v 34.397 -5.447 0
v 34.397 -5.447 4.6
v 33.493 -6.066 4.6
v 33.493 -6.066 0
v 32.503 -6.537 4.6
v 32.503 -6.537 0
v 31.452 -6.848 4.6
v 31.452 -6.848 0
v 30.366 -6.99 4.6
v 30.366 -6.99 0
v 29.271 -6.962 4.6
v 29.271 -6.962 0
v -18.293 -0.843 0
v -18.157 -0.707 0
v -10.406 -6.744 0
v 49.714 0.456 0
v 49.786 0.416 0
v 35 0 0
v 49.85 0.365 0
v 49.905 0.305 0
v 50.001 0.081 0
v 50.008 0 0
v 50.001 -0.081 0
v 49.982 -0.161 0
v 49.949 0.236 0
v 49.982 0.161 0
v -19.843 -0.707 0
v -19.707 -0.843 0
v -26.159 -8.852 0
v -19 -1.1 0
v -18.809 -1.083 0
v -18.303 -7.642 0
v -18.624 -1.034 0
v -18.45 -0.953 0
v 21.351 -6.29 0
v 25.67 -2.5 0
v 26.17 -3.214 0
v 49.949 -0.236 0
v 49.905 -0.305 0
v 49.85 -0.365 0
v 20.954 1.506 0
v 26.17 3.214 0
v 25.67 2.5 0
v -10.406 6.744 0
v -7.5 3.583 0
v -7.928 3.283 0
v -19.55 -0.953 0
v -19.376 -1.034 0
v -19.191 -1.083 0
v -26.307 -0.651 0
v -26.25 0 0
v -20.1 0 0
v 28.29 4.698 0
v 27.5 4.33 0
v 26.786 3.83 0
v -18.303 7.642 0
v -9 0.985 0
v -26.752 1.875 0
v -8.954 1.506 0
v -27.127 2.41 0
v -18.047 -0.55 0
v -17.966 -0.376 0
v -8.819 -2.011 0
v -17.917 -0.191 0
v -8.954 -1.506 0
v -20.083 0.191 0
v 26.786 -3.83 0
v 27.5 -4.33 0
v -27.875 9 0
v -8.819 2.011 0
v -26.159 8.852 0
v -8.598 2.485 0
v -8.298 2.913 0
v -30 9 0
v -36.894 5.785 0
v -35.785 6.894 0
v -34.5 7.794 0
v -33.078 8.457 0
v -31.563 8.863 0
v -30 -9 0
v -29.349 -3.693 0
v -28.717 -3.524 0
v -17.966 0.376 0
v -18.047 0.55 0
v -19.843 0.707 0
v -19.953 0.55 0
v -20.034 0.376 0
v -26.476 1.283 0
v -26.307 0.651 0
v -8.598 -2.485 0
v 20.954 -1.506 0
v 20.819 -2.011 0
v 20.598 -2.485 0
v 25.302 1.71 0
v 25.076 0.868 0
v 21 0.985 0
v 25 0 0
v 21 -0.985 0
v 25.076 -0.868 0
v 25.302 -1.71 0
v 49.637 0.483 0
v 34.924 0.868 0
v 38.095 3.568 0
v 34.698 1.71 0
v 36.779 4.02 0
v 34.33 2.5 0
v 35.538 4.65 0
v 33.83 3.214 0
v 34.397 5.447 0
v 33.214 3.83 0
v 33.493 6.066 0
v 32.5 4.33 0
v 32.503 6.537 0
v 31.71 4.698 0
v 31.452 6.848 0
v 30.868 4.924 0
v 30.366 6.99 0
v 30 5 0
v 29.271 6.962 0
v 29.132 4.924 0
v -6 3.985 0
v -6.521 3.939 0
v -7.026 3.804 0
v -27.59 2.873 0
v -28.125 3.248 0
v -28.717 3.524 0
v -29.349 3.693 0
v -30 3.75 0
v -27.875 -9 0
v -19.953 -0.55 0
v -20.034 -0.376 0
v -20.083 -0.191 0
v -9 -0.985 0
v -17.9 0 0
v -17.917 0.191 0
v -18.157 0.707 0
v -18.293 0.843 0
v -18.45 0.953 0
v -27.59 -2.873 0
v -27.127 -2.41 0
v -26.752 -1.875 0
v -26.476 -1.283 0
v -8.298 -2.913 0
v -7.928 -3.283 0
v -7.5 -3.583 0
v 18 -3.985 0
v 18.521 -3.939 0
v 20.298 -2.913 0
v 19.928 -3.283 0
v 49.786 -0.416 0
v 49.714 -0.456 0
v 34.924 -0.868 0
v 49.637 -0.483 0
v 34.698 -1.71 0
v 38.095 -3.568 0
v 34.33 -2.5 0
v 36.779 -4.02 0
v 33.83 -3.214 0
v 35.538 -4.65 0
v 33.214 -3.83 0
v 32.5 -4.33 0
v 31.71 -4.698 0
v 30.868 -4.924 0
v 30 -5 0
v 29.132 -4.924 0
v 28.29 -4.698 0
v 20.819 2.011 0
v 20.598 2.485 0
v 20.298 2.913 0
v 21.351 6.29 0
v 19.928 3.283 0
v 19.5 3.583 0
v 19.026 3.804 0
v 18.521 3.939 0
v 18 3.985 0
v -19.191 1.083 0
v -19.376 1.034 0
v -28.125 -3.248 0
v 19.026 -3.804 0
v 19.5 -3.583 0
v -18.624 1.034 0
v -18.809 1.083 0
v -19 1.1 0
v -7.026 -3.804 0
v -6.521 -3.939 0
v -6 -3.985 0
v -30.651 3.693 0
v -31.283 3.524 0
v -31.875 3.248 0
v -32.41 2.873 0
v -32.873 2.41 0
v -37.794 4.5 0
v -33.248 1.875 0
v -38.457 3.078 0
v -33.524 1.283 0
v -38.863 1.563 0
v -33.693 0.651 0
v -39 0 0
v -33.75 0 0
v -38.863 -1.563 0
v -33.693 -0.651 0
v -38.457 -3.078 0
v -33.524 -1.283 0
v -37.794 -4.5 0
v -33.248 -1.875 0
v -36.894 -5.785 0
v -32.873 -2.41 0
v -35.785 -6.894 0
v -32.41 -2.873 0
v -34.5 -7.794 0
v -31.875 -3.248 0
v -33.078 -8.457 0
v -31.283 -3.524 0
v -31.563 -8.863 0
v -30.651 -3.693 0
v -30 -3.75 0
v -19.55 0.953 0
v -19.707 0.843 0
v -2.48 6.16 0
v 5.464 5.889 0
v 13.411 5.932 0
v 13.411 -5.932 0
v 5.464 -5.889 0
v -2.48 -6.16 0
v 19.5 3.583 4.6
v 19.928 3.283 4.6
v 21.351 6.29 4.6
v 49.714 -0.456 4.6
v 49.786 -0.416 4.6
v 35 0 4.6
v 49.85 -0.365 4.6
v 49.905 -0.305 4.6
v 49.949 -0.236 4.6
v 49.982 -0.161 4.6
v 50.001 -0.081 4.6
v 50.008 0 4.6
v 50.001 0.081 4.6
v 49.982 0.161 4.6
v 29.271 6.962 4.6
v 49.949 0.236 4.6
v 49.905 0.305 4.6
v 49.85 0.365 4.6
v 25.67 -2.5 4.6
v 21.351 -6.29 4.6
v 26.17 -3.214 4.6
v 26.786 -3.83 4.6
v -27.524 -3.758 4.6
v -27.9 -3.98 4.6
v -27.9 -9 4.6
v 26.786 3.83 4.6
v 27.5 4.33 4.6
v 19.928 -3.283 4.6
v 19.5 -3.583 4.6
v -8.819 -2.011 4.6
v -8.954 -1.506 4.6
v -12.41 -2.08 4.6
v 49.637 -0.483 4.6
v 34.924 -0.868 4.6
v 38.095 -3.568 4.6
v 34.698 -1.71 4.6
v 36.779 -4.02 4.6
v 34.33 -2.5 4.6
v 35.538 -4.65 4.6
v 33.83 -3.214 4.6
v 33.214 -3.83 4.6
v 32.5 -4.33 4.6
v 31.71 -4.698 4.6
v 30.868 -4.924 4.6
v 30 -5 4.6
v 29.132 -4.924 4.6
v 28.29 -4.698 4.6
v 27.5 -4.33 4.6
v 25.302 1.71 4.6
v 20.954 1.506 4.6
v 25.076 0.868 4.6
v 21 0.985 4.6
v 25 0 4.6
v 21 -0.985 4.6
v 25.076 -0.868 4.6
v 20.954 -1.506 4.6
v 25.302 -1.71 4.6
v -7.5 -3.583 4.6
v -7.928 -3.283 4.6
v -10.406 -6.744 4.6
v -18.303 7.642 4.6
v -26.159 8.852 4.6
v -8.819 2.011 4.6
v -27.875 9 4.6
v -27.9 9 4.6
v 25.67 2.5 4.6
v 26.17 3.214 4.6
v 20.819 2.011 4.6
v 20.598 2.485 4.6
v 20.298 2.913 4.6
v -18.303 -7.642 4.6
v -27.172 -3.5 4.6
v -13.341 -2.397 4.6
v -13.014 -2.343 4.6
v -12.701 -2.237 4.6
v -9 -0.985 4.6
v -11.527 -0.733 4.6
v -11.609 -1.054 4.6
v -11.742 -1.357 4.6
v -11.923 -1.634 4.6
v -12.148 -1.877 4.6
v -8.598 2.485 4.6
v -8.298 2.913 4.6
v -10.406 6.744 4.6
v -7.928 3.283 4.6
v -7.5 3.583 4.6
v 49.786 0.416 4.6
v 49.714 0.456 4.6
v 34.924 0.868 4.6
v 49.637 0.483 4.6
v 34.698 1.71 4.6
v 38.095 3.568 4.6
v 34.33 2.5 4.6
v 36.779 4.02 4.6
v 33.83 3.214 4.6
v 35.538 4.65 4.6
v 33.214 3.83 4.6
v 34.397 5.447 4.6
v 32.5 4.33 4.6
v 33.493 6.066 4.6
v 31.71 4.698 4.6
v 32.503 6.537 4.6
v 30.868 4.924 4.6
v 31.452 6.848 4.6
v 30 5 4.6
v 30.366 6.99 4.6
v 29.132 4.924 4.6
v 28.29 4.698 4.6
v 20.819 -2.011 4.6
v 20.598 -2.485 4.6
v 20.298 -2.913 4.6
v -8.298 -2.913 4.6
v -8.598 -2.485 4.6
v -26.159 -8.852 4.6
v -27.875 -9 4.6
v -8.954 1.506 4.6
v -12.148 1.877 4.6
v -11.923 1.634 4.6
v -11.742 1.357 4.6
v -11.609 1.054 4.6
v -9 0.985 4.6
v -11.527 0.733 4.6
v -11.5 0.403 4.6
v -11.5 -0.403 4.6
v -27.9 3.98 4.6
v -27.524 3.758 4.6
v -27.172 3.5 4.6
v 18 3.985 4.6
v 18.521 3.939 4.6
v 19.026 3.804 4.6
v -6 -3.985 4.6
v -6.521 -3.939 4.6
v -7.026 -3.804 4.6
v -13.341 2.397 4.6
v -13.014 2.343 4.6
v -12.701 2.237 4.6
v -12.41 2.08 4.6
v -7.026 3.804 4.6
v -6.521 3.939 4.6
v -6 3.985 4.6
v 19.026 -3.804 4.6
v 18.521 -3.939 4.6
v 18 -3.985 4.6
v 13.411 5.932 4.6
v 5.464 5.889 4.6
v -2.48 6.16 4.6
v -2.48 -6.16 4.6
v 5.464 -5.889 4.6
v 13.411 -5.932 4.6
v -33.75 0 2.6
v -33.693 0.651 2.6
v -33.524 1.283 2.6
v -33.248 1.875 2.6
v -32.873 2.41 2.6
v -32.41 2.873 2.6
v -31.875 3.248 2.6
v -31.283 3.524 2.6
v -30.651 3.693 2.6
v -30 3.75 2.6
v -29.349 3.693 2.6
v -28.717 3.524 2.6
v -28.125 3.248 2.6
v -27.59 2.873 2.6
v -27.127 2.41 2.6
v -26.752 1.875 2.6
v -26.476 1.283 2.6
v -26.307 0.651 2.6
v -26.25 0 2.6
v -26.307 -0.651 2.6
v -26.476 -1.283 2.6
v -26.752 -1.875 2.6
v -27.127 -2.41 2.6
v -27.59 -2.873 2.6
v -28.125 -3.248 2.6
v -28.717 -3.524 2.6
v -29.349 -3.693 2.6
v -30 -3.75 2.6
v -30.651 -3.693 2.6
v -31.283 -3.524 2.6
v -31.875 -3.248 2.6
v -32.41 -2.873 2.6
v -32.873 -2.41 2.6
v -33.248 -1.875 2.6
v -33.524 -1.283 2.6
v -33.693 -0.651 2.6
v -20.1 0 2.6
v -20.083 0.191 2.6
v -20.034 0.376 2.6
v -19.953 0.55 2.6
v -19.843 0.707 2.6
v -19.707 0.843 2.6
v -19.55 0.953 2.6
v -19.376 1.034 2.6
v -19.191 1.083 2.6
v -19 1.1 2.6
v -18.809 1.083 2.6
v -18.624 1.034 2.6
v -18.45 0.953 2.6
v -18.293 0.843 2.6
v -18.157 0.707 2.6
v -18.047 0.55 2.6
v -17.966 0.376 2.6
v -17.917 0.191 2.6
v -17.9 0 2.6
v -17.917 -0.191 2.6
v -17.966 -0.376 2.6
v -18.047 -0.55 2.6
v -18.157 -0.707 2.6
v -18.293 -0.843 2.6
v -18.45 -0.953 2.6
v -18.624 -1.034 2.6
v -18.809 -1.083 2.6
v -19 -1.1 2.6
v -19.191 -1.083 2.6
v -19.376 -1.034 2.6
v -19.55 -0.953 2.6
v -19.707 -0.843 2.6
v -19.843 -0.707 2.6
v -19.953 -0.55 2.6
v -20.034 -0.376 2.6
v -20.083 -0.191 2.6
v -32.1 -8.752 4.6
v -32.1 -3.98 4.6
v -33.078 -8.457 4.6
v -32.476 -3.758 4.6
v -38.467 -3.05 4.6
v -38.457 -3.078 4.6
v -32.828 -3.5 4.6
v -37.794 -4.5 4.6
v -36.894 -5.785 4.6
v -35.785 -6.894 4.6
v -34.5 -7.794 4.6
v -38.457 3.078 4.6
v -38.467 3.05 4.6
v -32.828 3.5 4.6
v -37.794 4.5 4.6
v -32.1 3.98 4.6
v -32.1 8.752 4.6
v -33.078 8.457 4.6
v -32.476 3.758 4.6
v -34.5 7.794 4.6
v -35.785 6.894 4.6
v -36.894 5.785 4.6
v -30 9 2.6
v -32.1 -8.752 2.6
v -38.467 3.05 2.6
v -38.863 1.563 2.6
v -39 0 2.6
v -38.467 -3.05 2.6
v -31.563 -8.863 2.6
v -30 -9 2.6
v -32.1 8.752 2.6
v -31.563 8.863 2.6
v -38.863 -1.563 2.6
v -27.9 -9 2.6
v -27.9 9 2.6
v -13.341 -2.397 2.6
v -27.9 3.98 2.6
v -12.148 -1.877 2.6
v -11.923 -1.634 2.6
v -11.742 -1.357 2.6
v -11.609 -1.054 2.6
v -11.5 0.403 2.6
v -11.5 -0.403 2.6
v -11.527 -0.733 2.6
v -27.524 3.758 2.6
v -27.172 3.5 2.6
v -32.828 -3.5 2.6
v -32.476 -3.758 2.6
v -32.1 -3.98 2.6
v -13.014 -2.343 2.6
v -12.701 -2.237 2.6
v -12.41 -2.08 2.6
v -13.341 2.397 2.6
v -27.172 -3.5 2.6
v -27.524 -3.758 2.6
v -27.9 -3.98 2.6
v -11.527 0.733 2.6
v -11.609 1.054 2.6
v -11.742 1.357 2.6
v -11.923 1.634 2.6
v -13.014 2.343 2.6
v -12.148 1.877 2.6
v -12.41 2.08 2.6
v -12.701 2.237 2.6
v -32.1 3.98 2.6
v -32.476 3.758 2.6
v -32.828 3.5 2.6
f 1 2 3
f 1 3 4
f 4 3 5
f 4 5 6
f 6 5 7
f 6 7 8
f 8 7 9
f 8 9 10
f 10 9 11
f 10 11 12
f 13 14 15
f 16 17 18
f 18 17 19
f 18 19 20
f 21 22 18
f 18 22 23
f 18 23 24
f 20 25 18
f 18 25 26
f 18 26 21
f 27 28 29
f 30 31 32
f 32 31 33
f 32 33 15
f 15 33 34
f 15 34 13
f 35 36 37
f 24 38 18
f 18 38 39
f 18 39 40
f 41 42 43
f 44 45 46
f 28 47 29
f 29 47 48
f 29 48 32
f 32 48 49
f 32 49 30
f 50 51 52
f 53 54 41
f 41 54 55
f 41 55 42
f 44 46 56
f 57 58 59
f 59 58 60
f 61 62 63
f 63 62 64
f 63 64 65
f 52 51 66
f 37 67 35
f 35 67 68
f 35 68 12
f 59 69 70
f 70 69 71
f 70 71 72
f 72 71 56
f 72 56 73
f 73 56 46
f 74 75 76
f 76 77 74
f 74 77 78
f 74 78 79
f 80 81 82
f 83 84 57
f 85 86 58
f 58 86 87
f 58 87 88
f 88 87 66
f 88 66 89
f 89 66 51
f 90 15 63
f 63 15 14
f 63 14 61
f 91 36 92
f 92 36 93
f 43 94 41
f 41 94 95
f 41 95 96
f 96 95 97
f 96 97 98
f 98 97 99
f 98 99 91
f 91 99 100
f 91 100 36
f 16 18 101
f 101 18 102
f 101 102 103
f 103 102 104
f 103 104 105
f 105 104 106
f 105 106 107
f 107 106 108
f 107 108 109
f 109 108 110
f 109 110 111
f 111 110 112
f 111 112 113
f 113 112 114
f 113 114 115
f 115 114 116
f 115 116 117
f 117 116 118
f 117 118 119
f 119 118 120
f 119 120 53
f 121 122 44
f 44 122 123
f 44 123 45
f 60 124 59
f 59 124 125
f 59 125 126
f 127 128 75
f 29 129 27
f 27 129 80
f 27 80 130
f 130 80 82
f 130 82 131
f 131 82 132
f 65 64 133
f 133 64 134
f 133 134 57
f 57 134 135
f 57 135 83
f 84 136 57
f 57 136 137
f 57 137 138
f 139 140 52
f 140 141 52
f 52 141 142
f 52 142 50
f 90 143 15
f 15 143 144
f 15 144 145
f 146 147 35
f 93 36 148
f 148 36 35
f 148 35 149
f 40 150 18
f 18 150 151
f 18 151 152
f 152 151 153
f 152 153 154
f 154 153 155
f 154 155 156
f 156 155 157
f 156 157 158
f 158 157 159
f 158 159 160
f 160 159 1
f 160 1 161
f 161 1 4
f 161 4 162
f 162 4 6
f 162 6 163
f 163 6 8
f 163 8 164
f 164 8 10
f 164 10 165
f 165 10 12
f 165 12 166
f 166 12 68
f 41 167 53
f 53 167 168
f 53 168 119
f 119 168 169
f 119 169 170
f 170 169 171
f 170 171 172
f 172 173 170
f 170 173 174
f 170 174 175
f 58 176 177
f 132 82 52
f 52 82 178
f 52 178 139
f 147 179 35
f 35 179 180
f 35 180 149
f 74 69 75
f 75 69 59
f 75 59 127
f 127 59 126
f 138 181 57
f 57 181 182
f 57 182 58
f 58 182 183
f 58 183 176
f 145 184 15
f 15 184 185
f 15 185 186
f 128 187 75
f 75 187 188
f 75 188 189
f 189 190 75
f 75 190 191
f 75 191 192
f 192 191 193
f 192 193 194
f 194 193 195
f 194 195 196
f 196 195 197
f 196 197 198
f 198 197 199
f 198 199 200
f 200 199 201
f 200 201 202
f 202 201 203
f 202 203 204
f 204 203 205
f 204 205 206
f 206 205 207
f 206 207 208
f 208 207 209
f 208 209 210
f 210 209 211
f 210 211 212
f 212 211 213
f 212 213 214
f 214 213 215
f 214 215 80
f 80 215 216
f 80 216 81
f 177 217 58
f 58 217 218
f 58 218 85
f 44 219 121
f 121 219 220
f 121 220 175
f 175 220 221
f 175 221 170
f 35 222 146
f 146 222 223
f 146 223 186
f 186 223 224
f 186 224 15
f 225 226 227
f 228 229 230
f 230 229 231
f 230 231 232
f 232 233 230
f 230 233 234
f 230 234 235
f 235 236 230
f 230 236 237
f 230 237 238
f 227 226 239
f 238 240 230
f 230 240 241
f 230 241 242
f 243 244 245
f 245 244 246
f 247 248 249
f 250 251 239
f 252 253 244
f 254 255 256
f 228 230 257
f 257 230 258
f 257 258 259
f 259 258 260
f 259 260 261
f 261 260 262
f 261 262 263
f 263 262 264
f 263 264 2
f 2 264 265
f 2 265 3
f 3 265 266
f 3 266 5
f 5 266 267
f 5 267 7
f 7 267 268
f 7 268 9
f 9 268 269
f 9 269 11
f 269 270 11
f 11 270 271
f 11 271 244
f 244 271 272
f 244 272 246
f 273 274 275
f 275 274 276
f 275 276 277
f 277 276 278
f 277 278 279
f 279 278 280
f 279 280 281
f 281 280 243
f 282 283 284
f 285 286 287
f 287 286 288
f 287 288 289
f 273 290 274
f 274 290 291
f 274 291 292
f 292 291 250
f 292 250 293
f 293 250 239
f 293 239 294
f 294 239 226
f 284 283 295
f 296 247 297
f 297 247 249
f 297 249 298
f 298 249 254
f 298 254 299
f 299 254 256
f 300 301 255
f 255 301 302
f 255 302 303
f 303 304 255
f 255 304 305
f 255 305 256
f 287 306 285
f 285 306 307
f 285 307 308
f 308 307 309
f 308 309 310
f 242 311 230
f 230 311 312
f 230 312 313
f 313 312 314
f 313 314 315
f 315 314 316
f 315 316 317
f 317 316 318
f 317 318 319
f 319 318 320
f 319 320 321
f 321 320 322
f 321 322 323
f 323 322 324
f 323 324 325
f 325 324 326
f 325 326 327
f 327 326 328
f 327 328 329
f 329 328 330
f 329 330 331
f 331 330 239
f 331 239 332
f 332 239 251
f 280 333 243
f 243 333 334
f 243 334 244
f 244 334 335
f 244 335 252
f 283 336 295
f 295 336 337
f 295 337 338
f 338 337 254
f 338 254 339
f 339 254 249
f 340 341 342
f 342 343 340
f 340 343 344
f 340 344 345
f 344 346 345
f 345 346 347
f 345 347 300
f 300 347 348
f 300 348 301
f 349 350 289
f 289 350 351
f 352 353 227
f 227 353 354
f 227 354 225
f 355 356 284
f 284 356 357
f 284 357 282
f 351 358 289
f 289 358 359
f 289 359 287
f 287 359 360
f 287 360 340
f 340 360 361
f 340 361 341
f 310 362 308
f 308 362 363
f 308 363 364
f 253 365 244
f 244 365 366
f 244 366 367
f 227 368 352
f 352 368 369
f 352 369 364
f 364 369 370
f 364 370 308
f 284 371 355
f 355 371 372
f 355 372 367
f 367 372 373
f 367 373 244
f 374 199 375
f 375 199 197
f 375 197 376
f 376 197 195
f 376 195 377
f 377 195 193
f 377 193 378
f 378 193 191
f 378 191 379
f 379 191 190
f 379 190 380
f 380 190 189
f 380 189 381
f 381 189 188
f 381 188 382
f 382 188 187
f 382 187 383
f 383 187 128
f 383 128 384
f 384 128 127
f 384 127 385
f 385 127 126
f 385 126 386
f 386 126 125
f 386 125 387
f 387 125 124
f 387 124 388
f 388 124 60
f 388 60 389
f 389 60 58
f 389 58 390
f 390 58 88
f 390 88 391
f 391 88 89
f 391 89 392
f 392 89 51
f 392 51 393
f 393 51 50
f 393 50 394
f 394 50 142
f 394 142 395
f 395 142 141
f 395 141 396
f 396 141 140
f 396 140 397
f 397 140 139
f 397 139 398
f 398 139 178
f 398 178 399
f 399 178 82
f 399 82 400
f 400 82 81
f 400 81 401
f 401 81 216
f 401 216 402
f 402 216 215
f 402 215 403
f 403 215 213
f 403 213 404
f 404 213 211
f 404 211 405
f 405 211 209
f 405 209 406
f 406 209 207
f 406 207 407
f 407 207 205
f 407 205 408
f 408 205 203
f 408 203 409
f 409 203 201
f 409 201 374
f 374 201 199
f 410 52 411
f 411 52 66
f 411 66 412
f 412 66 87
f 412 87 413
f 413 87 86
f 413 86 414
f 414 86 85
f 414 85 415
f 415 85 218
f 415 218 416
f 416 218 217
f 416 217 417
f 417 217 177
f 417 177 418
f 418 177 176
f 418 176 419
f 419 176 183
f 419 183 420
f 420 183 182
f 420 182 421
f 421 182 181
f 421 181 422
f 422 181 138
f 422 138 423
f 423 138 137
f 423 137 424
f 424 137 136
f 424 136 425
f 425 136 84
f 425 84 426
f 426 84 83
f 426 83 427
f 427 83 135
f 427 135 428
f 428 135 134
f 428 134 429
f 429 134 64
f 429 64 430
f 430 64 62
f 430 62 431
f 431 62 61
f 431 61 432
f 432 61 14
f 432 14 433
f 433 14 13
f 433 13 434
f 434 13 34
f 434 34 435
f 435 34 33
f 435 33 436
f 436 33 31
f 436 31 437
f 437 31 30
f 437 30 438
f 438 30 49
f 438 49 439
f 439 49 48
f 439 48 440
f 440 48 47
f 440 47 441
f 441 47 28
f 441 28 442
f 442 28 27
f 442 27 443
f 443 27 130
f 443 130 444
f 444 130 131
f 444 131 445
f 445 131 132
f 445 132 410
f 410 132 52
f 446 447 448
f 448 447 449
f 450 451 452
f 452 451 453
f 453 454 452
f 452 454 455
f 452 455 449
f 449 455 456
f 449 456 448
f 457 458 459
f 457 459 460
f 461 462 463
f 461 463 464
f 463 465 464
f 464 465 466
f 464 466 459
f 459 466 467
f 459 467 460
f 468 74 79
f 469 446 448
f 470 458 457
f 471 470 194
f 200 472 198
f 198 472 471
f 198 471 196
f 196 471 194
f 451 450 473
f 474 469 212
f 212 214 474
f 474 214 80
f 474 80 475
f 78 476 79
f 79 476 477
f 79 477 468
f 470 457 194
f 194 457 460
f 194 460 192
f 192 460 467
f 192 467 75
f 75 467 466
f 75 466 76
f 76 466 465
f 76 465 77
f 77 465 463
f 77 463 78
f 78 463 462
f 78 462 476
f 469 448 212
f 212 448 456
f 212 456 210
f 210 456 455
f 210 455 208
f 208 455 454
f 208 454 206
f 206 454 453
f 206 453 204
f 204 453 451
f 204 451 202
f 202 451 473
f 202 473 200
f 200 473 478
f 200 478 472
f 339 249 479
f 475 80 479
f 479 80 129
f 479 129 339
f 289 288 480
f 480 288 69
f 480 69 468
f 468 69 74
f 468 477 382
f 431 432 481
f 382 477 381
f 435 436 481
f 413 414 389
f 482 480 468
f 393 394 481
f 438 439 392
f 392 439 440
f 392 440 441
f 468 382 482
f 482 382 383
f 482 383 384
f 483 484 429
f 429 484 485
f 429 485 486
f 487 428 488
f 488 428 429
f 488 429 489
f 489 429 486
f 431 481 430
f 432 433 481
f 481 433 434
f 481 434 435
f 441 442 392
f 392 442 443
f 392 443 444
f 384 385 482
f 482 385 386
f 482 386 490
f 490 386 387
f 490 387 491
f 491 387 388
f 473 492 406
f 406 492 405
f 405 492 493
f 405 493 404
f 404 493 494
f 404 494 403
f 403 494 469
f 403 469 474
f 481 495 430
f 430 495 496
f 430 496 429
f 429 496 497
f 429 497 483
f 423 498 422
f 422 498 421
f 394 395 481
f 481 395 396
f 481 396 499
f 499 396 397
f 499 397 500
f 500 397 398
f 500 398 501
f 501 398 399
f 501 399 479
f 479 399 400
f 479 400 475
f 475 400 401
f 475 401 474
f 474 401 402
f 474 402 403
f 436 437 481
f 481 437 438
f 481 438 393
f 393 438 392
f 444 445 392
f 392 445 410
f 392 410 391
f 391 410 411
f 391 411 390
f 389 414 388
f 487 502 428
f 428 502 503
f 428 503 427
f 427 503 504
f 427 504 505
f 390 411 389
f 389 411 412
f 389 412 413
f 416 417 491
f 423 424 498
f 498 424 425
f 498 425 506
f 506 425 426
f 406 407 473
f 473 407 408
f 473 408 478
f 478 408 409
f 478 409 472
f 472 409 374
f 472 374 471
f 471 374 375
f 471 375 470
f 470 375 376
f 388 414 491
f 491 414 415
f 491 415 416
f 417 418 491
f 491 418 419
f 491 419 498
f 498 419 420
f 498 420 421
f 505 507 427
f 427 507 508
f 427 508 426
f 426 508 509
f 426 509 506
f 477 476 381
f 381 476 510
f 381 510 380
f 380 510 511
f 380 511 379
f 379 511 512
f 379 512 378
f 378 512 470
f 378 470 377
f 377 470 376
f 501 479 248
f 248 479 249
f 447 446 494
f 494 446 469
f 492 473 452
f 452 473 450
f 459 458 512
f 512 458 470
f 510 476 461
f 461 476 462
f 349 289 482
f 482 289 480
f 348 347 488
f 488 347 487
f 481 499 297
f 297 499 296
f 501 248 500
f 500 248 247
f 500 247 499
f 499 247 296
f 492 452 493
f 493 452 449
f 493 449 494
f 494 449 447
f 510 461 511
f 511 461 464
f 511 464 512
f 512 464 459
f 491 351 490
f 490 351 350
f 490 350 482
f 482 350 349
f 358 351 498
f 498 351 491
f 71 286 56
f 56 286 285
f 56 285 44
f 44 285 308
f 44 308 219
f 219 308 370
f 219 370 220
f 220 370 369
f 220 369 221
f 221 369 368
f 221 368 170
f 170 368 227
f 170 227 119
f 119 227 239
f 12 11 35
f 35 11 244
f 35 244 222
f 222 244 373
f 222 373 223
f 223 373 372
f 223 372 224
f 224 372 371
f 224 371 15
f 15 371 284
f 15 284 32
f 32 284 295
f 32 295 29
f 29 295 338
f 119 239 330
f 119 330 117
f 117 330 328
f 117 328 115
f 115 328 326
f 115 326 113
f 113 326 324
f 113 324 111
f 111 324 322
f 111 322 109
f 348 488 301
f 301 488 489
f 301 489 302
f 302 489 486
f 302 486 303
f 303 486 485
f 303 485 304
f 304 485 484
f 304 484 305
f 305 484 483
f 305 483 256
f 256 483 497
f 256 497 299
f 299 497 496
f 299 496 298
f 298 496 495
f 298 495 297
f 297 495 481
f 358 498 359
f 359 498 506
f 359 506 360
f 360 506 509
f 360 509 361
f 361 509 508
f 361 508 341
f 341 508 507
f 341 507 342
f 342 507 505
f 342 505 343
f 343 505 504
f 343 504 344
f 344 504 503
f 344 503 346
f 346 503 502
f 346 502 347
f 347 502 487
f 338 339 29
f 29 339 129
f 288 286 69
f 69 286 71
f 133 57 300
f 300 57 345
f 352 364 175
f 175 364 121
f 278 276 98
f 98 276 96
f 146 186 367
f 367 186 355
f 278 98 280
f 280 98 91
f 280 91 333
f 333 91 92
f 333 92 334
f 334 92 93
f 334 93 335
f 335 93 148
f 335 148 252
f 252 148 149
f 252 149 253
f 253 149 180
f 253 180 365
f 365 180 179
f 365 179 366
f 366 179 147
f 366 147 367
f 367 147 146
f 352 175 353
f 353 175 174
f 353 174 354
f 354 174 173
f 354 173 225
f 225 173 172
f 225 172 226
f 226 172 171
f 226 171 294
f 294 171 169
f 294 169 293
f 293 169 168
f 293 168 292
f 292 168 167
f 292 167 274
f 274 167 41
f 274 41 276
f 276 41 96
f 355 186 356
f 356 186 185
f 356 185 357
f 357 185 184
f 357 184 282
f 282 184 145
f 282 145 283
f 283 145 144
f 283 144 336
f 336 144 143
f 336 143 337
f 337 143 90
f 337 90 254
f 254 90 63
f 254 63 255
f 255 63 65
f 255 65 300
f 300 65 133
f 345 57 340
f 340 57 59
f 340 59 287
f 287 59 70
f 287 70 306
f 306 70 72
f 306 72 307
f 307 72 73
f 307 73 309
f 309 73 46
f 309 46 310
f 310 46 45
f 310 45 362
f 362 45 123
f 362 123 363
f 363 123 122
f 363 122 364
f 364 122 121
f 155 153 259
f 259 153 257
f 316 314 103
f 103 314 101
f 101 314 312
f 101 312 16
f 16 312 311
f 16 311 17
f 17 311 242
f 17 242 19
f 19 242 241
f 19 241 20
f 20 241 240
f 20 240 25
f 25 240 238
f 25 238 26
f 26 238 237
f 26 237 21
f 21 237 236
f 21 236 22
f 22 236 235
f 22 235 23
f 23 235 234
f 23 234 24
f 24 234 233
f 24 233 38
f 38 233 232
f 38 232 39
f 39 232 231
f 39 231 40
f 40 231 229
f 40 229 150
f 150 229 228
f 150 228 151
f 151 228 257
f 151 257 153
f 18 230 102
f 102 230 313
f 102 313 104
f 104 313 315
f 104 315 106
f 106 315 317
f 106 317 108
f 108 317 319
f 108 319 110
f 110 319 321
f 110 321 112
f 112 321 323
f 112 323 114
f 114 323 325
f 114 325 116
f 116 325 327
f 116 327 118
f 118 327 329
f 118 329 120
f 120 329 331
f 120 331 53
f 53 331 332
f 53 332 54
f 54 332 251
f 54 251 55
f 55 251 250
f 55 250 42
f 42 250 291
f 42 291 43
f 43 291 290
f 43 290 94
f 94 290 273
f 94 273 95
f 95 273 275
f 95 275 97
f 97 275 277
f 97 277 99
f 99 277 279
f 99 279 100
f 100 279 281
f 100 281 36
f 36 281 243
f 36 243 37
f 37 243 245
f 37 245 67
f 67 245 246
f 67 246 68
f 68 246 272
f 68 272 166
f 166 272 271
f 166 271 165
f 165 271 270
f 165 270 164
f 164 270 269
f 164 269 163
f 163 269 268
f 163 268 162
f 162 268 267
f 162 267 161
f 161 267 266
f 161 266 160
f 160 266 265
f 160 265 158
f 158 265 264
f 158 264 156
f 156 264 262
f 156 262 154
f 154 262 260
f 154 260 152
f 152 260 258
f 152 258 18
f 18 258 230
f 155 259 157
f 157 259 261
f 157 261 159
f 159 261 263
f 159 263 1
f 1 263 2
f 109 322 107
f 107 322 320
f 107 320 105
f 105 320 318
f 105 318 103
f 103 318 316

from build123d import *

# Parameters (mm, degrees)
ESQUISSE1_R             = 3.75
ESQUISSE1_R_2           = 1.6
ESQUISSE1_R_3           = 1.1
BOSS_EXTRU_1_DEPTH      = 2.6
ESQUISSE2_R             = 3.75
ESQUISSE2_R_2           = 1.6
ESQUISSE2_R_3           = 1.1
BOSS_EXTRU_2_DEPTH      = 2
ENL_V_MAT_EXTRU_1_DEPTH = 2
ENL_V_MAT_EXTRU_2_DEPTH = 41.288459886
CONG_1_R                = 2
CONG_2_R                = 10
ESQUISSE6_W             = 30
ESQUISSE6_H             = 7.96998198
ENL_V_MAT_EXTRU_4_DEPTH = 10
CONG_3_R                = 3
BOSS_EXTRU_3_DEPTH      = 4.6
CONG_4_R                = 0.5
ESQUISSE9_R             = 5
ENL_V_MAT_EXTRU_7_DEPTH = 52.019355151
CONG_5_R                = 10


with BuildPart() as part:
    # Esquisse1 → Boss.-Extru.1 (new body)
    with BuildSketch(Plane.XY):
        with BuildLine():
            Line((-30, 9), (30, 9))
            ThreePointArc((30, 9), (39, 0), (30, -9))
            Line((30, -9), (-30, -9))
            ThreePointArc((-30, -9), (-39, 0), (-30, 9))
        make_face()
        with Locations((-30, 0)):
            Circle(ESQUISSE1_R, mode=Mode.SUBTRACT)
        with Locations((30, 0)):
            Circle(ESQUISSE1_R_2, mode=Mode.SUBTRACT)
        with Locations((-19, 0)):
            Circle(ESQUISSE1_R_3, mode=Mode.SUBTRACT)
    extrude(amount=BOSS_EXTRU_1_DEPTH)

    # Esquisse2 → Boss.-Extru.2 (add)
    with BuildSketch(Plane.XY.offset(2.6)):
        with BuildLine():
            Line((-30, -9), (30, -9))
            ThreePointArc((30, -9), (39, 0), (30, 9))
            Line((30, 9), (-30, 9))
            ThreePointArc((-30, 9), (-39, 0), (-30, -9))
        make_face()
        with Locations((-30, 0)):
            Circle(ESQUISSE2_R, mode=Mode.SUBTRACT)
        with Locations((30, 0)):
            Circle(ESQUISSE2_R_2, mode=Mode.SUBTRACT)
        with Locations((-19, 0)):
            Circle(ESQUISSE2_R_3, mode=Mode.SUBTRACT)
    extrude(amount=BOSS_EXTRU_2_DEPTH)

    # Esquisse3 → Enlèv. mat.-Extru.1 (cut)
    with BuildSketch(Plane.XY.offset(4.6)):
        with BuildLine():
            Line((-32.1, 3.979949748), (-32.1, 11))
            Line((-32.1, 11), (-27.9, 11))
            Line((-27.9, 11), (-27.9, 3.979949748))
            ThreePointArc((-27.9, 3.979949748), (-27.524129159, 3.757667305), (-27.171572875, 3.5))
            Line((-27.171572875, 3.5), (-11.5, 2.25))
            Line((-11.5, 2.25), (-11.5, -2.25))
            Line((-11.5, -2.25), (-27.171572875, -3.5))
            ThreePointArc((-27.171572875, -3.5), (-27.524129159, -3.757667305), (-27.9, -3.979949748))
            Line((-27.9, -3.979949748), (-27.9, -11))
            Line((-27.9, -11), (-32.1, -11))
            Line((-32.1, -11), (-32.1, -3.979949748))
            ThreePointArc((-32.1, -3.979949748), (-32.475870841, -3.757667305), (-32.828427125, -3.5))
            Line((-32.828427125, -3.5), (-48.5, -2.25))
            Line((-48.5, -2.25), (-48.5, 2.25))
            Line((-48.5, 2.25), (-32.828427125, 3.5))
            ThreePointArc((-32.828427125, 3.5), (-32.475870841, 3.757667305), (-32.1, 3.979949748))
        make_face()
    extrude(amount=-ENL_V_MAT_EXTRU_1_DEPTH, mode=Mode.SUBTRACT)

    # Esquisse4 → Enlèv. mat.-Extru.2 (cut, through all)
    with BuildSketch(Plane.XY.offset(4.6)):
        with BuildLine():
            Line((-27, 9), (-27, 15.262477906))
            Line((-27, 15.262477906), (45.494284805, 15.262477906))
            Line((45.494284805, 15.262477906), (45.494284805, -15.262477906))
            Line((45.494284805, -15.262477906), (-27, -15.262477906))
            Line((-27, -15.262477906), (-27, -9))
            ThreePointArc((-27, -9), (1.06358338, -6), (29.270665078, -6.961901362))
            ThreePointArc((29.270665078, -6.961901362), (37, 0), (29.270665078, 6.961901362))
            ThreePointArc((29.270665078, 6.961901362), (1.06358338, 6), (-27, 9))
        make_face()
    extrude(amount=-ENL_V_MAT_EXTRU_2_DEPTH, mode=Mode.SUBTRACT)

    # Congé1
    cong_1_edges = [part.edges().sort_by_distance(p)[0] for p in [
        (-11.5, 2.25, 3.6),
        (-11.5, -2.25, 3.6),
    ]]
    fillet(cong_1_edges, radius=CONG_1_R)

    # Congé2
    cong_2_edges = [part.edges().sort_by_distance(p)[0] for p in [
        (-27, 9, 2.3),
        (-27, -9, 2.3),
    ]]
    fillet(cong_2_edges, radius=CONG_2_R)

    # Esquisse6 → Enlèv. mat.-Extru.4 (cut)
    with BuildSketch(Plane.XY.offset(4.6)):
        with Locations((6, 0)):
            Rectangle(ESQUISSE6_W, ESQUISSE6_H)
    extrude(amount=-ENL_V_MAT_EXTRU_4_DEPTH, mode=Mode.SUBTRACT)

    # Congé3
    cong_3_edges = [part.edges().sort_by_distance(p)[0] for p in [
        (-9, -3.98499099, 2.3),
        (-9, 3.98499099, 2.3),
        (21, 3.98499099, 2.3),
        (21, -3.98499099, 2.3),
    ]]
    fillet(cong_3_edges, radius=CONG_3_R)

    # Esquisse8 → Boss.-Extru.3 (add)
    with BuildSketch(Plane.XY.offset(4.6)):
        Polygon((51.444700397, 0), (35.567285724, 4.243268748), (35.567285724, -4.243268748), align=None)
    extrude(amount=-BOSS_EXTRU_3_DEPTH)

    # Congé4
    cong_4_edges = [part.edges().sort_by_distance(p)[0] for p in [
        (51.444700397, 0, 2.3),
    ]]
    fillet(cong_4_edges, radius=CONG_4_R)

    # Esquisse9 → Enlèv. mat.-Extru.7 (cut, through all)
    with BuildSketch(Plane.XY.offset(4.6)):
        with Locations((30, 0)):
            Circle(ESQUISSE9_R)
    extrude(amount=-ENL_V_MAT_EXTRU_7_DEPTH, mode=Mode.SUBTRACT)

    # Congé5
    cong_5_edges = [part.edges().sort_by_distance(p)[0] for p in [
        (35.567285724, -4.243268748, 2.3),
        (35.567285724, 4.243268748, 2.3),
    ]]
    fillet(cong_5_edges, radius=CONG_5_R)


solid = part.part
